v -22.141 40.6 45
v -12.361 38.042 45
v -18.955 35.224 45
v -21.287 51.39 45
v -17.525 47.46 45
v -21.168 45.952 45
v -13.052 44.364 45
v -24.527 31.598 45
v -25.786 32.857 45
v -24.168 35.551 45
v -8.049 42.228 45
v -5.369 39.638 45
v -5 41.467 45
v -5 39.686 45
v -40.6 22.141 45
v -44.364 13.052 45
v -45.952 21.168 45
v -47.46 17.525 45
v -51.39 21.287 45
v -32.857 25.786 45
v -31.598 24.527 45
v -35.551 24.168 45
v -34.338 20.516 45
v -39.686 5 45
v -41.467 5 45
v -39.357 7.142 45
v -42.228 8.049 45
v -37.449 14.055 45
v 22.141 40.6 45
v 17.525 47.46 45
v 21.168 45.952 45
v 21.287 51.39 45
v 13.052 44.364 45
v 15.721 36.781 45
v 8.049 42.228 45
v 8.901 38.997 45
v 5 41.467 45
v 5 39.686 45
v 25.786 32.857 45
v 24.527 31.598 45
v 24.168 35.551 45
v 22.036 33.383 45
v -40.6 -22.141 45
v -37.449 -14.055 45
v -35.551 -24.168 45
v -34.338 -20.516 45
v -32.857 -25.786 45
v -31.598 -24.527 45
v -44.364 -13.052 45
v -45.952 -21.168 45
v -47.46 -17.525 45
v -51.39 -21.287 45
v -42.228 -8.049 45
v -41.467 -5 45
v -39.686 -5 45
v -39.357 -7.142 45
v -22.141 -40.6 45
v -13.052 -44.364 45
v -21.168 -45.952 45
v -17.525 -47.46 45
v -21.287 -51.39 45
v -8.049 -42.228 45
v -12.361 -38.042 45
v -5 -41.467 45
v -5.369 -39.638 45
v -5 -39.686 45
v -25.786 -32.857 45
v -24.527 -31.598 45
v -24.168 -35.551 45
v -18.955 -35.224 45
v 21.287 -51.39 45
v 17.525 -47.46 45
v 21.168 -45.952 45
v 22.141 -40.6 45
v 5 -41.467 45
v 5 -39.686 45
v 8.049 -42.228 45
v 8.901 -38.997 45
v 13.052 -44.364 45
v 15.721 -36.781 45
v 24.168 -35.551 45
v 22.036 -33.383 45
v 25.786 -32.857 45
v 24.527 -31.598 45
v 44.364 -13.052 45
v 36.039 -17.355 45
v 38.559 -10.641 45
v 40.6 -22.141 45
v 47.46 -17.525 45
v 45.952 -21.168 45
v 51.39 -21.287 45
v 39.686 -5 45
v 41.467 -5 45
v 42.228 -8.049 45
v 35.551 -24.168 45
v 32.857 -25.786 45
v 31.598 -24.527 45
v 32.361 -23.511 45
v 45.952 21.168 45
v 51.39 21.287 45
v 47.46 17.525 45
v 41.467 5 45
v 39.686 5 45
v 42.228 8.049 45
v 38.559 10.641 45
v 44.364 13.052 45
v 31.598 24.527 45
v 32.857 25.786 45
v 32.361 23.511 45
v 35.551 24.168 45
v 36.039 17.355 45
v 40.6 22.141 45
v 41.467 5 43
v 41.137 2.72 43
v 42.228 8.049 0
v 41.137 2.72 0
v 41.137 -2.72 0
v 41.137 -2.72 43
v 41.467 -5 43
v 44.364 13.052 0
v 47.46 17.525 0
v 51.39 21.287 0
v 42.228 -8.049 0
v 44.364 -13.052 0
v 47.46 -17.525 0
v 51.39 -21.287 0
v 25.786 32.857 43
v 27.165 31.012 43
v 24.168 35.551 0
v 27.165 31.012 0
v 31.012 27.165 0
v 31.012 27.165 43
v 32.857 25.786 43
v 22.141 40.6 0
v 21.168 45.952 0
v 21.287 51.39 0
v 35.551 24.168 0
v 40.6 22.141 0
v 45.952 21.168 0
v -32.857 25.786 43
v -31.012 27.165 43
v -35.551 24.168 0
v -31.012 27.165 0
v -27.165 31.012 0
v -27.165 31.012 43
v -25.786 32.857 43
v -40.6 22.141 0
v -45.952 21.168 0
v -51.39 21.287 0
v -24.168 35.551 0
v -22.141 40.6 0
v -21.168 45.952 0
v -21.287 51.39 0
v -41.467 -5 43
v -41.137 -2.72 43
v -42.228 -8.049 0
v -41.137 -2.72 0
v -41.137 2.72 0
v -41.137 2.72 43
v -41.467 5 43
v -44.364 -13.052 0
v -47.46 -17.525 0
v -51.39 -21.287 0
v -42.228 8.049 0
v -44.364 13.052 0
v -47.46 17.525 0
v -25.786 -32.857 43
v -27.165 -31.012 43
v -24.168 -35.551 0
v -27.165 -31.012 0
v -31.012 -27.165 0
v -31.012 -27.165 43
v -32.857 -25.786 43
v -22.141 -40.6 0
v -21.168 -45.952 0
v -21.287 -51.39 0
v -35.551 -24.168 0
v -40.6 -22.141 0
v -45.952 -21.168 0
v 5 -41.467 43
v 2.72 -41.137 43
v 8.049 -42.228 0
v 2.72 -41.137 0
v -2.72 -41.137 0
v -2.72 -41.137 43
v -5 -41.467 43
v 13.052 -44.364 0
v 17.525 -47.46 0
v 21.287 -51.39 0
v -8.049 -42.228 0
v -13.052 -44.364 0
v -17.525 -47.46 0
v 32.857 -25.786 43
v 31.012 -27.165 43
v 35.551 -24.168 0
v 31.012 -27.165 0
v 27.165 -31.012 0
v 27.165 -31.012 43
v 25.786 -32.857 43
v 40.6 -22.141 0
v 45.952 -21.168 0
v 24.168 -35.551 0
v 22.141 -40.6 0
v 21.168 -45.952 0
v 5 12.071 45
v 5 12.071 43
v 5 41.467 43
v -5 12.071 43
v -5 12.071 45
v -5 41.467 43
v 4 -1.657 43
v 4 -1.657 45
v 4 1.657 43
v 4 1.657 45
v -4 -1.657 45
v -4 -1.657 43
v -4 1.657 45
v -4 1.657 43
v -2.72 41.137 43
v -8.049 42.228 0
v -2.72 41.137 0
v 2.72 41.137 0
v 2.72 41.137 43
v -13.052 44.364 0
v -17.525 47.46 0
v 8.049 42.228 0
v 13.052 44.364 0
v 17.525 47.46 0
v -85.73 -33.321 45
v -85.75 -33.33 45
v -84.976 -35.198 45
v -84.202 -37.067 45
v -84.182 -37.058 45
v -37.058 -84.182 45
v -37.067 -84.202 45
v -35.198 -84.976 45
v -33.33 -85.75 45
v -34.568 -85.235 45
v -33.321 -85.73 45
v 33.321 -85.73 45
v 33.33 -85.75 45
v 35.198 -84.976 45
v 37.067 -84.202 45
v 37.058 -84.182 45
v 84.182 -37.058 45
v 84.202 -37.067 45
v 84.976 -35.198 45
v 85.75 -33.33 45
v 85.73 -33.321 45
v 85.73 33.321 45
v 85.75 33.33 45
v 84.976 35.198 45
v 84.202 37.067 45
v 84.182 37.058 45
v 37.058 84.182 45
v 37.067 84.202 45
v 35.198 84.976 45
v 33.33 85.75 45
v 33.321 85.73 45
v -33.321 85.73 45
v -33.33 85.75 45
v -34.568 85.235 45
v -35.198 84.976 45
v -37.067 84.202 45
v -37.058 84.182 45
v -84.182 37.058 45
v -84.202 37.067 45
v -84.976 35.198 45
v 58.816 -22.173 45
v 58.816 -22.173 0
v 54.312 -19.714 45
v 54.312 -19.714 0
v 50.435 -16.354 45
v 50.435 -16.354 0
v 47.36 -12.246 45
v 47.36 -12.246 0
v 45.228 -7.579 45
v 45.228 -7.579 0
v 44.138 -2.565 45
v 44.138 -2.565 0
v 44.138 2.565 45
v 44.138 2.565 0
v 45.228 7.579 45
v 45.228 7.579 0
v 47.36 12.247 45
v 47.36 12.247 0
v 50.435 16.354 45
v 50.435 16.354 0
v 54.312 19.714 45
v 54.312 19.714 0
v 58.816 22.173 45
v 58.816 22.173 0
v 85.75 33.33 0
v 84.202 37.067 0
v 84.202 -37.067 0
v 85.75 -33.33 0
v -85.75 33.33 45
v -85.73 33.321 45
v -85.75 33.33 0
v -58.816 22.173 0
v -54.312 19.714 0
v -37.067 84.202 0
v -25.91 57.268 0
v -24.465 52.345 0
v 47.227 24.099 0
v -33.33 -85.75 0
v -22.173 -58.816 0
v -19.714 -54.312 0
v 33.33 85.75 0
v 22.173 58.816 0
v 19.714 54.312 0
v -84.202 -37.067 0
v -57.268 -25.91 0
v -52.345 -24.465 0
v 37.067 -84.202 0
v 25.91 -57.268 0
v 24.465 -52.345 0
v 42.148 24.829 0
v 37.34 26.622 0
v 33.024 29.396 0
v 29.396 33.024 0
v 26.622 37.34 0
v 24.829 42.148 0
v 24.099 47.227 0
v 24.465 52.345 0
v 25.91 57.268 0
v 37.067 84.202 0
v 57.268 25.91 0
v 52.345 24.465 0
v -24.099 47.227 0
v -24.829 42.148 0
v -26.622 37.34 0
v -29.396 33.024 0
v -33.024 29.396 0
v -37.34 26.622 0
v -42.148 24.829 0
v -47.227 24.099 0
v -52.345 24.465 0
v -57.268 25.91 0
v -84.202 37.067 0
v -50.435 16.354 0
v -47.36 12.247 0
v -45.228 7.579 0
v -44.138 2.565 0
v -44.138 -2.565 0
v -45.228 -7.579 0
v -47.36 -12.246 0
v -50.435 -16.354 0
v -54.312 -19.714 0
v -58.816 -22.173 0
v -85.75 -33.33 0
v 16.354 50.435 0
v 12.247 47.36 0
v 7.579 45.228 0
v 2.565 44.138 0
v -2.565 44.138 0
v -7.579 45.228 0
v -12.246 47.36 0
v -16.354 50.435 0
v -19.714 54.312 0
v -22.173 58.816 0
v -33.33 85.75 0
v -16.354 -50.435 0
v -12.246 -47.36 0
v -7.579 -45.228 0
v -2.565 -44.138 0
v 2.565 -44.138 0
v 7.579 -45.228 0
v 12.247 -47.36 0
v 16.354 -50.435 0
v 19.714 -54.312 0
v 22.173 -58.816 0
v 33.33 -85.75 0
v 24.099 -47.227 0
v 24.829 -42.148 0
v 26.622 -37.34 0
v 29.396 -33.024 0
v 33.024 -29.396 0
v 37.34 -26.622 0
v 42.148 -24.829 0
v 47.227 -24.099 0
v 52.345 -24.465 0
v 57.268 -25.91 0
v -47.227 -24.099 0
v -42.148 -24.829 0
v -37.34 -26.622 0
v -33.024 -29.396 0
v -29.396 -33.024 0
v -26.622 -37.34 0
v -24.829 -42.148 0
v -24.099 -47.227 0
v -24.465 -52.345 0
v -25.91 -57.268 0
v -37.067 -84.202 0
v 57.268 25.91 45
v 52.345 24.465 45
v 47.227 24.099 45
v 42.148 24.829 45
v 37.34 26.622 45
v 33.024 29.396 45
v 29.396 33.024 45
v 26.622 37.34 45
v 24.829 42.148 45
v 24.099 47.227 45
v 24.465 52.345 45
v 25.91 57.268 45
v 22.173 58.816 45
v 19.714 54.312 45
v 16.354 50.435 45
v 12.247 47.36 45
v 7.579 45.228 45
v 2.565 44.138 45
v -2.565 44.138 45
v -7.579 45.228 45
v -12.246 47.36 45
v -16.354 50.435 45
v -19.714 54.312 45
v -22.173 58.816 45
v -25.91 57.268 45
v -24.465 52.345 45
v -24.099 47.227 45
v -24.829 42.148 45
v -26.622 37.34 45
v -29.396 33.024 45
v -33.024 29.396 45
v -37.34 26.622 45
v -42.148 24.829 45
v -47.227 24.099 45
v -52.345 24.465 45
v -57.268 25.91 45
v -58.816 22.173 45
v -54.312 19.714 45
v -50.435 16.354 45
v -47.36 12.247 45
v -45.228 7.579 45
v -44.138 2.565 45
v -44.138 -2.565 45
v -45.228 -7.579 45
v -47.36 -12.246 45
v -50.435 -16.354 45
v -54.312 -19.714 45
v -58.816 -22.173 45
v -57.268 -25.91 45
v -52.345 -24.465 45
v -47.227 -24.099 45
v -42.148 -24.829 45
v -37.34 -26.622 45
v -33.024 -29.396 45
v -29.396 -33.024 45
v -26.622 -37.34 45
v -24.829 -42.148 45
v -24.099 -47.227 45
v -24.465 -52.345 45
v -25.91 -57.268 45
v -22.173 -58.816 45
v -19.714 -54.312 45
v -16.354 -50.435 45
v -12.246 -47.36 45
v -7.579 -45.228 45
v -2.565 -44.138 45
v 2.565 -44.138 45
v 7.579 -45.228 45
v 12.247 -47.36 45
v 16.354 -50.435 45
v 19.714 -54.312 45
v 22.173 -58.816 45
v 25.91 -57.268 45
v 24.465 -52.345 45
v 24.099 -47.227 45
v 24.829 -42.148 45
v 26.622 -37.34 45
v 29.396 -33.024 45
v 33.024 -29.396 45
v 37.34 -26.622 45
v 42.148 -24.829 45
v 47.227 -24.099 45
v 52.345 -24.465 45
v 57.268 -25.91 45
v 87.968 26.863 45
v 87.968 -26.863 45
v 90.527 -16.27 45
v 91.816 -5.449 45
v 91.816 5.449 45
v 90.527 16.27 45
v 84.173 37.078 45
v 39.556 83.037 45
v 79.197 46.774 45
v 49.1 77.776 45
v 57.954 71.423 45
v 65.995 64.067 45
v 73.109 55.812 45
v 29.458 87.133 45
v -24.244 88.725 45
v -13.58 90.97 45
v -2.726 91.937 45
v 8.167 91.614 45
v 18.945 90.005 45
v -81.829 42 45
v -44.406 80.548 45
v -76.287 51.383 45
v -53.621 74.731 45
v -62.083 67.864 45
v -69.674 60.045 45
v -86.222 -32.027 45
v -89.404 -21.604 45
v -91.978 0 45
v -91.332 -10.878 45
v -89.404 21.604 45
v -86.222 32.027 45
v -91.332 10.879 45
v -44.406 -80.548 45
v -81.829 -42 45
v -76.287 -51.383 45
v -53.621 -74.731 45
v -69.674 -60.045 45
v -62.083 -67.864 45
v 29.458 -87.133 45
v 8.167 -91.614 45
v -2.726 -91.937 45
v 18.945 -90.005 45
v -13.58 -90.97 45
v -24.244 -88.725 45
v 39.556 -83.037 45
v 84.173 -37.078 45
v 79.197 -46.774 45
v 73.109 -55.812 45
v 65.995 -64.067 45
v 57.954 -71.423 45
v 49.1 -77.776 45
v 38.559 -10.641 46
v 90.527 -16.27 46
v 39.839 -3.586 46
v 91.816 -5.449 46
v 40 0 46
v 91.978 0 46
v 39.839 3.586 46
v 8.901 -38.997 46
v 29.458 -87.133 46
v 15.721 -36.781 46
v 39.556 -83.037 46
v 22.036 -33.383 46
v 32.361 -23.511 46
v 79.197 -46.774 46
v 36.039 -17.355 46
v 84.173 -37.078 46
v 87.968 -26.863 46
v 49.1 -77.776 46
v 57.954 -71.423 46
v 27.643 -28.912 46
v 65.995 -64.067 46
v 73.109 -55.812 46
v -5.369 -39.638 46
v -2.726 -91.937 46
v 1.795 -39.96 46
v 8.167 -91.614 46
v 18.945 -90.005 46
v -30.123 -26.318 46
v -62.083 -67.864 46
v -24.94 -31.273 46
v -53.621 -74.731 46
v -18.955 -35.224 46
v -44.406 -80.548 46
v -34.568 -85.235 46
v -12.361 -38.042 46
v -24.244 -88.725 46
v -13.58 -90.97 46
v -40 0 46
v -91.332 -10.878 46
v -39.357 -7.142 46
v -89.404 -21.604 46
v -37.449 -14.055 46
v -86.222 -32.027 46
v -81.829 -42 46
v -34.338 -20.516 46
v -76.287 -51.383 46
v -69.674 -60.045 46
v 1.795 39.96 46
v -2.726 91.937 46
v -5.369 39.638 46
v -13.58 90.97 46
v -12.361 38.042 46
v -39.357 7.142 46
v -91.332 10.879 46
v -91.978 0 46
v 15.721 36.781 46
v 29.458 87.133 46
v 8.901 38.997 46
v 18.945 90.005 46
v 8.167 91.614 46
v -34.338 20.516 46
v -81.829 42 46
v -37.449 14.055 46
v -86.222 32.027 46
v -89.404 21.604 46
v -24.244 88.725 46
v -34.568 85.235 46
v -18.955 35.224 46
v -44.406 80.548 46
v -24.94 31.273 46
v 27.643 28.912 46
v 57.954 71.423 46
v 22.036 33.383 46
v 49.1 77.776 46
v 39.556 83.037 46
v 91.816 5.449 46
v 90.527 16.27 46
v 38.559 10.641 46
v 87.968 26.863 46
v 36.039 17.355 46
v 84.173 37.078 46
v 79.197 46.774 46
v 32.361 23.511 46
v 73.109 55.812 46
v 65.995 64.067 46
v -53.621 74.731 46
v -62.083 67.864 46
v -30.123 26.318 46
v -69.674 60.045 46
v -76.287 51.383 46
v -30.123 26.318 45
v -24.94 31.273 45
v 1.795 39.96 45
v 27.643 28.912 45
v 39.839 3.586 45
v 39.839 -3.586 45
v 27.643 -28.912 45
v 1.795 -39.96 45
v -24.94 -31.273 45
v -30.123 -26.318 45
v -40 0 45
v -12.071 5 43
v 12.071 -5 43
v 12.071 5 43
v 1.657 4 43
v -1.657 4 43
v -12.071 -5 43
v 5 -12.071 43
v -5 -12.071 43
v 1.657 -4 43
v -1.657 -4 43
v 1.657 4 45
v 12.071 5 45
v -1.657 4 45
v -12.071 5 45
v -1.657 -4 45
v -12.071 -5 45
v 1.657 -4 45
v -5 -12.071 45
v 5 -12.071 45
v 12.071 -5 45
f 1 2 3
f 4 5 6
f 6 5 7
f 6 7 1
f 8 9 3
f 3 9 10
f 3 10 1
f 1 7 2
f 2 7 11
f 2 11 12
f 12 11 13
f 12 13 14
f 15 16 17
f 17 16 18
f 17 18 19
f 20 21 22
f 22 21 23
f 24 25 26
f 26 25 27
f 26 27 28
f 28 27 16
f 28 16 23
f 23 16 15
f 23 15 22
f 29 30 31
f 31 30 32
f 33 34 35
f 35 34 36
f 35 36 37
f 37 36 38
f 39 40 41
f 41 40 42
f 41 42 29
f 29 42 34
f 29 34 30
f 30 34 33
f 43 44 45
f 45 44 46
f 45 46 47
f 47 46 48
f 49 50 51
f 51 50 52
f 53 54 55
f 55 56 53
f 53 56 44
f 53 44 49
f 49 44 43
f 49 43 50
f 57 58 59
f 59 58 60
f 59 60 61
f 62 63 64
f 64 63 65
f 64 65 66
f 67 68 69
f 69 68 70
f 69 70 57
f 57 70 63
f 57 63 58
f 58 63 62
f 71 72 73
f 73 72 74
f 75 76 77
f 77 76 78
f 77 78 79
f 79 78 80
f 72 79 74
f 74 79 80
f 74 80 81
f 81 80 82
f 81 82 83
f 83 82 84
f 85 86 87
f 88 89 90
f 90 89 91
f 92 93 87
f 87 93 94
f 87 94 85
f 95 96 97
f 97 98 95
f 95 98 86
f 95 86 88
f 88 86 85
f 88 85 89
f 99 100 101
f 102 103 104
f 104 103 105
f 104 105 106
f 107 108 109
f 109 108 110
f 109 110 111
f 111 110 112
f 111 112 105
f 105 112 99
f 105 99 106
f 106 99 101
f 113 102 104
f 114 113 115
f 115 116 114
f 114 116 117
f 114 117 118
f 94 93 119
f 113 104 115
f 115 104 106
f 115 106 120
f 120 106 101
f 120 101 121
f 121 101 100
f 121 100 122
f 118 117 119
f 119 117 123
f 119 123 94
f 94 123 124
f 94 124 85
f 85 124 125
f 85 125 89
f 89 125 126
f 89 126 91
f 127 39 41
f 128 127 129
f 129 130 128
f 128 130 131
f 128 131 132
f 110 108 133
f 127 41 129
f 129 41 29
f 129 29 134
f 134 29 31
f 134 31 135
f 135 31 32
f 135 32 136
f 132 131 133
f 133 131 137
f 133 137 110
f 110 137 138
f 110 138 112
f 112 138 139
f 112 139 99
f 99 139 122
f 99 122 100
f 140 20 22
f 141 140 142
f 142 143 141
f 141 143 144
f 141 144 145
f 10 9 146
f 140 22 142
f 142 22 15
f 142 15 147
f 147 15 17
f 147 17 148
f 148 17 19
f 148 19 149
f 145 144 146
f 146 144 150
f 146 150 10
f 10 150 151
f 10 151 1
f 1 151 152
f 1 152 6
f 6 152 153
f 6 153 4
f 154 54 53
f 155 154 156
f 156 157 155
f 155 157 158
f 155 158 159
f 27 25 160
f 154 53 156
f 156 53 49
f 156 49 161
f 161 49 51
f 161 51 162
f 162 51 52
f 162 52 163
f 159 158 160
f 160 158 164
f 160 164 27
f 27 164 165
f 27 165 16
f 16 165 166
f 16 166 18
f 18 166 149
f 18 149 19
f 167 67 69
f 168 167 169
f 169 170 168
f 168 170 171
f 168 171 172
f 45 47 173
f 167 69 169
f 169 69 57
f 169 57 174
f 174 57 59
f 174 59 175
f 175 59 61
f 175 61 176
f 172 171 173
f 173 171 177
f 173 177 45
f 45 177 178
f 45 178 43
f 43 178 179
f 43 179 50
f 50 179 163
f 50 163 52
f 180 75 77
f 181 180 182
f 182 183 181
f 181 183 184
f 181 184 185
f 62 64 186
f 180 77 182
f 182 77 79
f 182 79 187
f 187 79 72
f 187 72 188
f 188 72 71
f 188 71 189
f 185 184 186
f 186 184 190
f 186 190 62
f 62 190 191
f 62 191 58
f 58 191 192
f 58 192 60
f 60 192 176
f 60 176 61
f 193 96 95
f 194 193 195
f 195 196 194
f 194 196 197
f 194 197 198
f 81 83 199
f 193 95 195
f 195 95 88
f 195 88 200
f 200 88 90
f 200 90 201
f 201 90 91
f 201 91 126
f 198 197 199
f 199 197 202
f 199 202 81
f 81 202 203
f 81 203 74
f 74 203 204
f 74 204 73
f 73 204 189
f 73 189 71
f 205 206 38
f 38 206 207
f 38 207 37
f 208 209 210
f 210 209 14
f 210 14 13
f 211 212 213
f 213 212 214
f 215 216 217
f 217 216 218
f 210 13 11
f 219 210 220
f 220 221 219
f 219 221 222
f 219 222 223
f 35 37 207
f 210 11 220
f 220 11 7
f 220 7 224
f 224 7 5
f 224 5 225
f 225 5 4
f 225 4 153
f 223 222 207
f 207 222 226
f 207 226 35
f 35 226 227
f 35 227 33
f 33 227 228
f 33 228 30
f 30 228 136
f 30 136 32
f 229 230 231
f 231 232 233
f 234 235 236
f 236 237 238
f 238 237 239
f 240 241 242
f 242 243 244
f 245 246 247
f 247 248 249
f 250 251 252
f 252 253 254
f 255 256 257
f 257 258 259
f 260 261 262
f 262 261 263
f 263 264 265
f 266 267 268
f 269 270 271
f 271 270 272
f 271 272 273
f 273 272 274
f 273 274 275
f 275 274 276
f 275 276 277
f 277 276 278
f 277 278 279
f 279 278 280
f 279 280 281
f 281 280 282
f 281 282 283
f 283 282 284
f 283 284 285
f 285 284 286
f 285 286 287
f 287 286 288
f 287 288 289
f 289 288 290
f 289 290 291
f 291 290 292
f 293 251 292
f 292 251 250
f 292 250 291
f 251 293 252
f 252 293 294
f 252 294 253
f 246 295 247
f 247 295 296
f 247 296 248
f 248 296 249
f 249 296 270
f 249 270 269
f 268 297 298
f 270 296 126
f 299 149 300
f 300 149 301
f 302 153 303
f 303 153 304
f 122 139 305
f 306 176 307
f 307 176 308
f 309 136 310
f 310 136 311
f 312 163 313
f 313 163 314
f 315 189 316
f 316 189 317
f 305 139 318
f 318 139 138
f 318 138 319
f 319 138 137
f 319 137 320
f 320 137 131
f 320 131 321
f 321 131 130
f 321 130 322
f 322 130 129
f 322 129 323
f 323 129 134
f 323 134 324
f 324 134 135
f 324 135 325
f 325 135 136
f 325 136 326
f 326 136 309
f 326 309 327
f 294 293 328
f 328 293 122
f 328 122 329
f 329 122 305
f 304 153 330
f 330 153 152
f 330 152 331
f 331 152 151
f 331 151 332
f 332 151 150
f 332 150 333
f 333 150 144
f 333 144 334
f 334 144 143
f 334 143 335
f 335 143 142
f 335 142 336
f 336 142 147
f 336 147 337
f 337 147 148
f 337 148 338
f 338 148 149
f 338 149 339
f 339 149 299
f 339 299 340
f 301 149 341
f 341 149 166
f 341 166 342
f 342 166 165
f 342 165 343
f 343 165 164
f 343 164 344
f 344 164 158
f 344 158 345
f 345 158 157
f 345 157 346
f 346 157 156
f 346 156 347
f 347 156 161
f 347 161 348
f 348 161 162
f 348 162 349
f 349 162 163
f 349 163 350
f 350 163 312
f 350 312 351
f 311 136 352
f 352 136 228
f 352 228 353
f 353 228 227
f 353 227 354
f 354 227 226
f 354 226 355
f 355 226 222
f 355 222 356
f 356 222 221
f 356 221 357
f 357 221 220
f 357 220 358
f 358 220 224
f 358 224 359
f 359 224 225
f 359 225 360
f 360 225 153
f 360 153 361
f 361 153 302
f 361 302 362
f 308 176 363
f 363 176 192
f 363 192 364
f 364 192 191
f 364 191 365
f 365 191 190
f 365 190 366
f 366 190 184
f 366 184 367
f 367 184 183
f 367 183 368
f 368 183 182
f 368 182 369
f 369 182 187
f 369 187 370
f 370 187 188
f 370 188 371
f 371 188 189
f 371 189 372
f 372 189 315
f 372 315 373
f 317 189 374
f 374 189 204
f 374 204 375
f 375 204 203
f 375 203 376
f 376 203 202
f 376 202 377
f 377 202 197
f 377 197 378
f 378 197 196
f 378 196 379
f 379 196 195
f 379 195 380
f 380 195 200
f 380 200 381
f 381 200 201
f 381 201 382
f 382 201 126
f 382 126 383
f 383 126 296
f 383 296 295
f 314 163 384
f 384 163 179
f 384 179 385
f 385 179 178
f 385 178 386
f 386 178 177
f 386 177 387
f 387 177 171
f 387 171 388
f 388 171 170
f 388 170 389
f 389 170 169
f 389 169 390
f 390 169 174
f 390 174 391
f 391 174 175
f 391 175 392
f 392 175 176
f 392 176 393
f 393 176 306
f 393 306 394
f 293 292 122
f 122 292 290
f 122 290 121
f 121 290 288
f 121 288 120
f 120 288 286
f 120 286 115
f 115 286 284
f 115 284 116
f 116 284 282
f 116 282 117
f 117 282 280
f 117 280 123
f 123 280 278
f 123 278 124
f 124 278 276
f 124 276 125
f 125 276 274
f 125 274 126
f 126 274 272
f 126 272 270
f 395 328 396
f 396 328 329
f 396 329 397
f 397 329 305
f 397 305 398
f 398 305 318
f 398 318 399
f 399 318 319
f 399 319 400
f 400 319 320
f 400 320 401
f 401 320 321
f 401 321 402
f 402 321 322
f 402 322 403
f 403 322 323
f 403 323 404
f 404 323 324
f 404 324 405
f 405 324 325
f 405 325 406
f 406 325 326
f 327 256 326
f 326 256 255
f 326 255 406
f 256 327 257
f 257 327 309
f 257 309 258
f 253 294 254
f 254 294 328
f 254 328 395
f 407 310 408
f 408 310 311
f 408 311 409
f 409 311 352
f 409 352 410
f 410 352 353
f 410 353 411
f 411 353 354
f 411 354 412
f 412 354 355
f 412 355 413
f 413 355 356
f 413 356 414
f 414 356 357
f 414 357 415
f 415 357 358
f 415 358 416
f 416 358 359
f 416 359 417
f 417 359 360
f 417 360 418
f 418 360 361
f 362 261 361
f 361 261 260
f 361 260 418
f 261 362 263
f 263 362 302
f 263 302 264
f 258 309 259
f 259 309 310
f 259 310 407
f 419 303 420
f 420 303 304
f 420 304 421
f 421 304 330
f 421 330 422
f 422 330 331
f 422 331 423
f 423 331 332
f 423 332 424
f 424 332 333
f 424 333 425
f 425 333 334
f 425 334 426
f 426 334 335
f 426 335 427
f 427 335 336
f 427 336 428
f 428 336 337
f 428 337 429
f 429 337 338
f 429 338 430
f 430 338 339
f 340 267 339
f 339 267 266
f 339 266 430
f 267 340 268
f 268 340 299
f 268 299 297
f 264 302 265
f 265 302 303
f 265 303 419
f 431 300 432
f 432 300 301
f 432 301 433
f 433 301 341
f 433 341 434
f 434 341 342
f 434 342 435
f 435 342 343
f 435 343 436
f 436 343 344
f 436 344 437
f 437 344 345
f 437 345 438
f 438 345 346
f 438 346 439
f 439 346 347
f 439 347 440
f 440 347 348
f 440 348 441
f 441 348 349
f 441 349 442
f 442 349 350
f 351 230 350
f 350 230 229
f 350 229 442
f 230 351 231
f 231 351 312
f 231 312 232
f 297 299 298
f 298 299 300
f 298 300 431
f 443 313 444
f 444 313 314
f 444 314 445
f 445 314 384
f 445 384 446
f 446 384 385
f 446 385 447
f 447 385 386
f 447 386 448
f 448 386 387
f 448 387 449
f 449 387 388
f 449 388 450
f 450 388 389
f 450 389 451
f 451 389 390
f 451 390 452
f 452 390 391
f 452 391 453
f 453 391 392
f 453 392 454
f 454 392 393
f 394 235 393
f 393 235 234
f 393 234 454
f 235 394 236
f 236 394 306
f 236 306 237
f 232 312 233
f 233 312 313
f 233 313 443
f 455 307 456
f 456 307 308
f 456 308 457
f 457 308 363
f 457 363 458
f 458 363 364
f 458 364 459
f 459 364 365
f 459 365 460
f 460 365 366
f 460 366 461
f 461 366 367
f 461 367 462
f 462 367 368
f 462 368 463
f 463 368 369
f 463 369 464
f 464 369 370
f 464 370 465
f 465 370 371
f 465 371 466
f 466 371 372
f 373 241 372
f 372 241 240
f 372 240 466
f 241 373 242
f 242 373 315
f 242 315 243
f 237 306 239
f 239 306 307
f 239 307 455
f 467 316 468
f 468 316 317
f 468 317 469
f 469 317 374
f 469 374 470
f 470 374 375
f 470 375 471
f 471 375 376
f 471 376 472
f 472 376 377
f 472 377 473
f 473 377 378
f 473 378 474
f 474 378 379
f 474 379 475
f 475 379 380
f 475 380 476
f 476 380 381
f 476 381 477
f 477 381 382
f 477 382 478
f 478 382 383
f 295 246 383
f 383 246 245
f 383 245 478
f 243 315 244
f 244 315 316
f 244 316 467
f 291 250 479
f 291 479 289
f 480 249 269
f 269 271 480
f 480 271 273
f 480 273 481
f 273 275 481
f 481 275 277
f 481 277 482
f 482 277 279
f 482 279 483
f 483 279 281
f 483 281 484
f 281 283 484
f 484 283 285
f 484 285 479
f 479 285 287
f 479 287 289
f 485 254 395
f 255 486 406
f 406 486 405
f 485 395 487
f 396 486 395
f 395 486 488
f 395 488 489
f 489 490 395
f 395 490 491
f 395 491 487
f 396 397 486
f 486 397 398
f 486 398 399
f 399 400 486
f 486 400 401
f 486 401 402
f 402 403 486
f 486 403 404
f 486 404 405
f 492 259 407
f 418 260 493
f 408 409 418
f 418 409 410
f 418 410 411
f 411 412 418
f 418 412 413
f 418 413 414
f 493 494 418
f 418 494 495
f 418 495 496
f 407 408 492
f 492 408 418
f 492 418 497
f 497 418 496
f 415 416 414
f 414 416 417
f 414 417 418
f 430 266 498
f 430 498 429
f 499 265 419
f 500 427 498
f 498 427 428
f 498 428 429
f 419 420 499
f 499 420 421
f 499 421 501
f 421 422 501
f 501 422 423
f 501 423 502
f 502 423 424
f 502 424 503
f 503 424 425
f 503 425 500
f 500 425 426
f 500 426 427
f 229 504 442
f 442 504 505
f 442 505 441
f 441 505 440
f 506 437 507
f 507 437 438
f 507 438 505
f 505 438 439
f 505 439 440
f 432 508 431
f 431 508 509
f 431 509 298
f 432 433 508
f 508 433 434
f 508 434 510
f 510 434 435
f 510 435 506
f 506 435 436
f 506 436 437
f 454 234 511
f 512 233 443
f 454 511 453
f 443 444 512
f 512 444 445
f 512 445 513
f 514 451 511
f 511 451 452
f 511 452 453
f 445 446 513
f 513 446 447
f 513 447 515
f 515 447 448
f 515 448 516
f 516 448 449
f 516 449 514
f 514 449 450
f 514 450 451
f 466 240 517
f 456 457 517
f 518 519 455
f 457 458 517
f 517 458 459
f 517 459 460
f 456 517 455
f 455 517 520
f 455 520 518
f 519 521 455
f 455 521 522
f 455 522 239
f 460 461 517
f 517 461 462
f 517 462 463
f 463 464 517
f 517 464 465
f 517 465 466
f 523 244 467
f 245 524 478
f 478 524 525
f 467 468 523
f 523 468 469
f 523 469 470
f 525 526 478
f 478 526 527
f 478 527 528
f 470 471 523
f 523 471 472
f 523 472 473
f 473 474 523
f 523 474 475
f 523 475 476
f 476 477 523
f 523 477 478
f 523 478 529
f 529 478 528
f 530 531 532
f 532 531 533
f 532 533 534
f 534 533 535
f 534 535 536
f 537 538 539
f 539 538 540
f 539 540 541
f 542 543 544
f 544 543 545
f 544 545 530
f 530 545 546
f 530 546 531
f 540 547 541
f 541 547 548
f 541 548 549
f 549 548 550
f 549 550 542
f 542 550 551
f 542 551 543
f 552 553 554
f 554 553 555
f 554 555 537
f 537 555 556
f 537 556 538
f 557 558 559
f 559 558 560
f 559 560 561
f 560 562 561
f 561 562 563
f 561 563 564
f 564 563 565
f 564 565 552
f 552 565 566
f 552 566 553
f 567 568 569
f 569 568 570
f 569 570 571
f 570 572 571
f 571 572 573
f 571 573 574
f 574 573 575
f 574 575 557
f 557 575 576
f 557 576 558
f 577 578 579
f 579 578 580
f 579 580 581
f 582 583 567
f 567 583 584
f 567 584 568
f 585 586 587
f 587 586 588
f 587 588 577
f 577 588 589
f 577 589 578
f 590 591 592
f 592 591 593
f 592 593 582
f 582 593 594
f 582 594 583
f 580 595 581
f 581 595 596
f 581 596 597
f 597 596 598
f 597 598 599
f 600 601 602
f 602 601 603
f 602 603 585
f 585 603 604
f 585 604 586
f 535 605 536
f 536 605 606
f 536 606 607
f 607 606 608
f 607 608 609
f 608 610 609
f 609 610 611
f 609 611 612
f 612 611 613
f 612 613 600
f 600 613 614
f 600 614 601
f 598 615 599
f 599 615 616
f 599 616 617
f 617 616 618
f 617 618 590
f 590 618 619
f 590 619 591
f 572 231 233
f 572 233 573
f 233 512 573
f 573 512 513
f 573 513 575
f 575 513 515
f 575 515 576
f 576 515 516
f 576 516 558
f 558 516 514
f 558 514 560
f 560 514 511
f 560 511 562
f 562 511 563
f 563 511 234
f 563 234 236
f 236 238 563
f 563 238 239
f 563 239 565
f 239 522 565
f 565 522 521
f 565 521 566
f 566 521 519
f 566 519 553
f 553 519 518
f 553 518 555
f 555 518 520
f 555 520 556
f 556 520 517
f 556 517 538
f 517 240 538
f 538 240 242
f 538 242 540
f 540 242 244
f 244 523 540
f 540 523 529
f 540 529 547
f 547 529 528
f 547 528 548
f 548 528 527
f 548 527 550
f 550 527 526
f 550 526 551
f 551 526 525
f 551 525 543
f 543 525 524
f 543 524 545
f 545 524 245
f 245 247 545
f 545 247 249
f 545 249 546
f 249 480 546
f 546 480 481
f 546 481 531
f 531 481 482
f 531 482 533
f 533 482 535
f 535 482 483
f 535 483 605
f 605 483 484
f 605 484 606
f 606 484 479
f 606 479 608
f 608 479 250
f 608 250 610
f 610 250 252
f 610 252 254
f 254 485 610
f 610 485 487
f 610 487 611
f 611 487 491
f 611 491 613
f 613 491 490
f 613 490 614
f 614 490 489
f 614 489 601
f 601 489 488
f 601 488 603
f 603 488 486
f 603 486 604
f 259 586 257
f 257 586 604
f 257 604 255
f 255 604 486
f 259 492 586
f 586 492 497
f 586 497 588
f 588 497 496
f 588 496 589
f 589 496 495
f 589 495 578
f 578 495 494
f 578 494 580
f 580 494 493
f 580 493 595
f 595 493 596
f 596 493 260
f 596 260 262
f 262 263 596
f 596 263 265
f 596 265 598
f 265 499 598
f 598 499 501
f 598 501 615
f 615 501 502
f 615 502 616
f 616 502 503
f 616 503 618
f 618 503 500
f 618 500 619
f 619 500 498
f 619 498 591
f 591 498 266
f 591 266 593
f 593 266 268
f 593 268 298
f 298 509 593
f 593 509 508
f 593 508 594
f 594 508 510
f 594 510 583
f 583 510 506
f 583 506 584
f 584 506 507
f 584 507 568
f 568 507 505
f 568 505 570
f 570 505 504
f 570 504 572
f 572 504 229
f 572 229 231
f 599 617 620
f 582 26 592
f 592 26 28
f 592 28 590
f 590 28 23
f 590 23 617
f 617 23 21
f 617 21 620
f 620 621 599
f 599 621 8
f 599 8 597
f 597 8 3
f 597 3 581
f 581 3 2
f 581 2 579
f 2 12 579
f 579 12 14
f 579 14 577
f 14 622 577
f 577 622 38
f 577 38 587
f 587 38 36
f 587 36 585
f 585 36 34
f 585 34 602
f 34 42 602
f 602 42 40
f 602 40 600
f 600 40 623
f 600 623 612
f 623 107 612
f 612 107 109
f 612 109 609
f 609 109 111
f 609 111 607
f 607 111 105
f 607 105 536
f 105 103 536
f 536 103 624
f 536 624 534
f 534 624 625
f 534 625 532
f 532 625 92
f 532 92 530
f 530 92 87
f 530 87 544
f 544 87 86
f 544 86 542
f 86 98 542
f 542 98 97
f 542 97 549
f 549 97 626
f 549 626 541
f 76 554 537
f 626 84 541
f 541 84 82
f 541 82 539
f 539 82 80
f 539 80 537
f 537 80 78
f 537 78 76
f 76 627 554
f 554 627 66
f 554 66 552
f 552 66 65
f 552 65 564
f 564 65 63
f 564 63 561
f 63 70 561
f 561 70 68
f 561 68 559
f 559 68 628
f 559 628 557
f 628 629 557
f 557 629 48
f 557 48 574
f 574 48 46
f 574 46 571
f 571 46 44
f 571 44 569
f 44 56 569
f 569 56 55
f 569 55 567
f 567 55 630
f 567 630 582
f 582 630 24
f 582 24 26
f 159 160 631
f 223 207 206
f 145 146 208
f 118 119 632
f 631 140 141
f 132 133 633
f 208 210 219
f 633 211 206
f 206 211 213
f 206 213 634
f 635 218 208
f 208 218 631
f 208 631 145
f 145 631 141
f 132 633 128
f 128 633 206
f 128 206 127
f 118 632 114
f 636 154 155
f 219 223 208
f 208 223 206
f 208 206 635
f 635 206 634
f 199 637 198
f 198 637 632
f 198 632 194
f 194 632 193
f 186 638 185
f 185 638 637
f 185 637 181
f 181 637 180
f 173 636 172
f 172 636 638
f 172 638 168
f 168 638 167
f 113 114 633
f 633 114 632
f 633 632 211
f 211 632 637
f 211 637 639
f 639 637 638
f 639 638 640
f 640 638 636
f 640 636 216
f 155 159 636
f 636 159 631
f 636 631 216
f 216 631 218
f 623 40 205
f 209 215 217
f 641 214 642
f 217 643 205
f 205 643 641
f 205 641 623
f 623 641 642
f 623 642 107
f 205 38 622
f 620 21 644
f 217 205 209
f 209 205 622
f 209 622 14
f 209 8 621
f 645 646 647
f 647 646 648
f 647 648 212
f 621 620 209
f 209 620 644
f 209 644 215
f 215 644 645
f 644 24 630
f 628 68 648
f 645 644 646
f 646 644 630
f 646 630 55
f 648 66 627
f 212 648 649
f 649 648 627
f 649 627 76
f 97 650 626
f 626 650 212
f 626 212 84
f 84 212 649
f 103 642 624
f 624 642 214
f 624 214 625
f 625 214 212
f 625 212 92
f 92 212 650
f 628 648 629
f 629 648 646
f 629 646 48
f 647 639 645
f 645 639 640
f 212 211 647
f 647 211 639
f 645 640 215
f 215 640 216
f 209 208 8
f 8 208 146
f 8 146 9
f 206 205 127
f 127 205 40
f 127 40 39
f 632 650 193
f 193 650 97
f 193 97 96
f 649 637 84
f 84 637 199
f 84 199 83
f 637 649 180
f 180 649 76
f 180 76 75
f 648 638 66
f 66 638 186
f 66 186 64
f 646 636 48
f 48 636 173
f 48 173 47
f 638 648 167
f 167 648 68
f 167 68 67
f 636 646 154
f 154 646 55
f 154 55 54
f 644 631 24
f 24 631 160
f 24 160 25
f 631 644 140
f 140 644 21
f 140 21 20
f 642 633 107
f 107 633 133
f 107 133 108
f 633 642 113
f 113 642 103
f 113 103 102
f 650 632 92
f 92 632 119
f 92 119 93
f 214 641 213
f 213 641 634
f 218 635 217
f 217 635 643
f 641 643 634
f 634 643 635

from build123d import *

# Parameters (mm, degrees)
MAIN_EXTRUSION_DEPTH         = 45
R_P_TITION_CIRCULAIRE1_DEPTH = 45
ESQUISSE2_R                  = 91.977766886
ESQUISSE2_R_2                = 40
GLOBAL_CIRCLE_DEPTH          = 1
CENTRAL_START                = 2
CENTRAL_FIXING_DEPTH         = 2
R_P_TITION_CIRCULAIRE2_COUNT = 8


# Read off the part's stored shape, not the designer's step: Répétition circulaire1
with BuildPart() as part:
    # Esquisse1 → Main Extrusion (new body)
    with BuildSketch(Plane.XY):
        with BuildLine():
            Line((57.667547326, 24.944747378), (84.602293038, 36.101484351))
            Line((84.602293038, 36.101484351), (85.750343335, 33.329845753))
            Line((85.750343335, 33.329845753), (58.815597623, 22.17310878))
            ThreePointArc((58.815597623, 22.17310878), (44, 0), (58.815597623, -22.17310878))
            Line((58.815597623, -22.17310878), (85.750343335, -33.329845753))
            Line((85.750343335, -33.329845753), (84.602293038, -36.101484351))
            Line((84.602293038, -36.101484351), (57.667547326, -24.944747378))
            ThreePointArc((57.667547326, -24.944747378), (41, 0), (57.667547326, 24.944747378))
        make_face()
    extrude(amount=MAIN_EXTRUSION_DEPTH)

    # Répétition circulaire1 outline → Répétition circulaire1 (add)
    with BuildSketch(Plane.XY):
        with BuildLine():
            Line((-84.202409209, -37.066889313), (-57.267663497, -25.91015234))
            ThreePointArc((-57.267663497, -25.91015234), (-31.112698372, -31.112698372), (-25.91015234, -57.267663497))
            Line((-25.91015234, -57.267663497), (-37.066889313, -84.202409209))
            Line((-37.066889313, -84.202409209), (-33.329845753, -85.750343335))
            Line((-33.329845753, -85.750343335), (-22.17310878, -58.815597623))
            ThreePointArc((-22.17310878, -58.815597623), (0, -44), (22.17310878, -58.815597623))
            Line((22.17310878, -58.815597623), (33.329845753, -85.750343335))
            Line((33.329845753, -85.750343335), (37.066889313, -84.202409209))
            Line((37.066889313, -84.202409209), (25.91015234, -57.267663497))
            ThreePointArc((25.91015234, -57.267663497), (31.112698372, -31.112698372), (57.267663497, -25.91015234))
            Line((57.267663497, -25.91015234), (84.202409209, -37.066889313))
            Line((84.202409209, -37.066889313), (84.602293038, -36.101484351))
            Line((84.602293038, -36.101484351), (57.667547326, -24.944747378))
            ThreePointArc((57.667547326, -24.944747378), (54.405305377, -23.327757675), (51.390283197, -21.286552275))
            ThreePointArc((51.390283197, -21.286552275), (28.991378029, -28.991378029), (21.286552275, -51.390283197))
            ThreePointArc((21.286552275, -51.390283197), (0, -41), (-21.286552275, -51.390283197))
            ThreePointArc((-21.286552275, -51.390283197), (-28.991378029, -28.991378029), (-51.390283197, -21.286552275))
            ThreePointArc((-51.390283197, -21.286552275), (-41, 0), (-51.390283197, 21.286552275))
            ThreePointArc((-51.390283197, 21.286552275), (-28.991378029, 28.991378029), (-21.286552275, 51.390283197))
            ThreePointArc((-21.286552275, 51.390283197), (0, 41), (21.286552275, 51.390283197))
            ThreePointArc((21.286552275, 51.390283197), (28.991378029, 28.991378029), (51.390283197, 21.286552275))
            ThreePointArc((51.390283197, 21.286552275), (54.405305377, 23.327757675), (57.667547326, 24.944747378))
            Line((57.667547326, 24.944747378), (84.602293038, 36.101484351))
            Line((84.602293038, 36.101484351), (84.202409209, 37.066889313))
            Line((84.202409209, 37.066889313), (57.267663497, 25.91015234))
            ThreePointArc((57.267663497, 25.91015234), (31.112698372, 31.112698372), (25.91015234, 57.267663497))
            Line((25.91015234, 57.267663497), (37.066889313, 84.202409209))
            Line((37.066889313, 84.202409209), (33.329845753, 85.750343335))
            Line((33.329845753, 85.750343335), (22.17310878, 58.815597623))
            ThreePointArc((22.17310878, 58.815597623), (0, 44), (-22.17310878, 58.815597623))
            Line((-22.17310878, 58.815597623), (-33.329845753, 85.750343335))
            Line((-33.329845753, 85.750343335), (-37.066889313, 84.202409209))
            Line((-37.066889313, 84.202409209), (-25.91015234, 57.267663497))
            ThreePointArc((-25.91015234, 57.267663497), (-31.112698372, 31.112698372), (-57.267663497, 25.91015234))
            Line((-57.267663497, 25.91015234), (-84.202409209, 37.066889313))
            Line((-84.202409209, 37.066889313), (-85.750343335, 33.329845753))
            Line((-85.750343335, 33.329845753), (-58.815597623, 22.17310878))
            ThreePointArc((-58.815597623, 22.17310878), (-44, 0), (-58.815597623, -22.17310878))
            Line((-58.815597623, -22.17310878), (-85.750343335, -33.329845753))
            Line((-85.750343335, -33.329845753), (-84.202409209, -37.066889313))
        make_face()
    extrude(amount=R_P_TITION_CIRCULAIRE1_DEPTH)

    # Esquisse2 → Global Circle (add)
    with BuildSketch(Plane.XY.offset(45)):
        with Locations(Location((0, 0, 0), (0, 0, 201.240037576))):
            Circle(ESQUISSE2_R)
        Circle(ESQUISSE2_R_2, mode=Mode.SUBTRACT)
    extrude(amount=GLOBAL_CIRCLE_DEPTH)

    # Esquisse3 → Central Fixing (add)
    with BuildSketch(Plane(origin=(0, 0, 45), x_dir=(-1, 0, 0), z_dir=(0, 0, -1)).offset(CENTRAL_START)):
        with BuildLine():
            Line((-5, 44.526610811), (-5, 0))
            Line((-5, 0), (-4, 0))
            Line((-4, 0), (-4, 5))
            Line((-4, 5), (4, 5))
            Line((4, 5), (4, 0))
            Line((4, 0), (5, 0))
            Line((5, 0), (5, 44.526610811))
            ThreePointArc((5, 44.526610811), (0, 44), (-5, 44.526610811))
        make_face()
    central_fixing = extrude(amount=-CENTRAL_FIXING_DEPTH)

    # Répétition circulaire2: Central Fixing ×8 about axis
    r_p_tition_circulaire2_axis = Axis((0, 0, 0), (0, 0, 1))
    for i in range(1, R_P_TITION_CIRCULAIRE2_COUNT):
        add(central_fixing.rotate(r_p_tition_circulaire2_axis, i * 360 / R_P_TITION_CIRCULAIRE2_COUNT))


solid = part.part
